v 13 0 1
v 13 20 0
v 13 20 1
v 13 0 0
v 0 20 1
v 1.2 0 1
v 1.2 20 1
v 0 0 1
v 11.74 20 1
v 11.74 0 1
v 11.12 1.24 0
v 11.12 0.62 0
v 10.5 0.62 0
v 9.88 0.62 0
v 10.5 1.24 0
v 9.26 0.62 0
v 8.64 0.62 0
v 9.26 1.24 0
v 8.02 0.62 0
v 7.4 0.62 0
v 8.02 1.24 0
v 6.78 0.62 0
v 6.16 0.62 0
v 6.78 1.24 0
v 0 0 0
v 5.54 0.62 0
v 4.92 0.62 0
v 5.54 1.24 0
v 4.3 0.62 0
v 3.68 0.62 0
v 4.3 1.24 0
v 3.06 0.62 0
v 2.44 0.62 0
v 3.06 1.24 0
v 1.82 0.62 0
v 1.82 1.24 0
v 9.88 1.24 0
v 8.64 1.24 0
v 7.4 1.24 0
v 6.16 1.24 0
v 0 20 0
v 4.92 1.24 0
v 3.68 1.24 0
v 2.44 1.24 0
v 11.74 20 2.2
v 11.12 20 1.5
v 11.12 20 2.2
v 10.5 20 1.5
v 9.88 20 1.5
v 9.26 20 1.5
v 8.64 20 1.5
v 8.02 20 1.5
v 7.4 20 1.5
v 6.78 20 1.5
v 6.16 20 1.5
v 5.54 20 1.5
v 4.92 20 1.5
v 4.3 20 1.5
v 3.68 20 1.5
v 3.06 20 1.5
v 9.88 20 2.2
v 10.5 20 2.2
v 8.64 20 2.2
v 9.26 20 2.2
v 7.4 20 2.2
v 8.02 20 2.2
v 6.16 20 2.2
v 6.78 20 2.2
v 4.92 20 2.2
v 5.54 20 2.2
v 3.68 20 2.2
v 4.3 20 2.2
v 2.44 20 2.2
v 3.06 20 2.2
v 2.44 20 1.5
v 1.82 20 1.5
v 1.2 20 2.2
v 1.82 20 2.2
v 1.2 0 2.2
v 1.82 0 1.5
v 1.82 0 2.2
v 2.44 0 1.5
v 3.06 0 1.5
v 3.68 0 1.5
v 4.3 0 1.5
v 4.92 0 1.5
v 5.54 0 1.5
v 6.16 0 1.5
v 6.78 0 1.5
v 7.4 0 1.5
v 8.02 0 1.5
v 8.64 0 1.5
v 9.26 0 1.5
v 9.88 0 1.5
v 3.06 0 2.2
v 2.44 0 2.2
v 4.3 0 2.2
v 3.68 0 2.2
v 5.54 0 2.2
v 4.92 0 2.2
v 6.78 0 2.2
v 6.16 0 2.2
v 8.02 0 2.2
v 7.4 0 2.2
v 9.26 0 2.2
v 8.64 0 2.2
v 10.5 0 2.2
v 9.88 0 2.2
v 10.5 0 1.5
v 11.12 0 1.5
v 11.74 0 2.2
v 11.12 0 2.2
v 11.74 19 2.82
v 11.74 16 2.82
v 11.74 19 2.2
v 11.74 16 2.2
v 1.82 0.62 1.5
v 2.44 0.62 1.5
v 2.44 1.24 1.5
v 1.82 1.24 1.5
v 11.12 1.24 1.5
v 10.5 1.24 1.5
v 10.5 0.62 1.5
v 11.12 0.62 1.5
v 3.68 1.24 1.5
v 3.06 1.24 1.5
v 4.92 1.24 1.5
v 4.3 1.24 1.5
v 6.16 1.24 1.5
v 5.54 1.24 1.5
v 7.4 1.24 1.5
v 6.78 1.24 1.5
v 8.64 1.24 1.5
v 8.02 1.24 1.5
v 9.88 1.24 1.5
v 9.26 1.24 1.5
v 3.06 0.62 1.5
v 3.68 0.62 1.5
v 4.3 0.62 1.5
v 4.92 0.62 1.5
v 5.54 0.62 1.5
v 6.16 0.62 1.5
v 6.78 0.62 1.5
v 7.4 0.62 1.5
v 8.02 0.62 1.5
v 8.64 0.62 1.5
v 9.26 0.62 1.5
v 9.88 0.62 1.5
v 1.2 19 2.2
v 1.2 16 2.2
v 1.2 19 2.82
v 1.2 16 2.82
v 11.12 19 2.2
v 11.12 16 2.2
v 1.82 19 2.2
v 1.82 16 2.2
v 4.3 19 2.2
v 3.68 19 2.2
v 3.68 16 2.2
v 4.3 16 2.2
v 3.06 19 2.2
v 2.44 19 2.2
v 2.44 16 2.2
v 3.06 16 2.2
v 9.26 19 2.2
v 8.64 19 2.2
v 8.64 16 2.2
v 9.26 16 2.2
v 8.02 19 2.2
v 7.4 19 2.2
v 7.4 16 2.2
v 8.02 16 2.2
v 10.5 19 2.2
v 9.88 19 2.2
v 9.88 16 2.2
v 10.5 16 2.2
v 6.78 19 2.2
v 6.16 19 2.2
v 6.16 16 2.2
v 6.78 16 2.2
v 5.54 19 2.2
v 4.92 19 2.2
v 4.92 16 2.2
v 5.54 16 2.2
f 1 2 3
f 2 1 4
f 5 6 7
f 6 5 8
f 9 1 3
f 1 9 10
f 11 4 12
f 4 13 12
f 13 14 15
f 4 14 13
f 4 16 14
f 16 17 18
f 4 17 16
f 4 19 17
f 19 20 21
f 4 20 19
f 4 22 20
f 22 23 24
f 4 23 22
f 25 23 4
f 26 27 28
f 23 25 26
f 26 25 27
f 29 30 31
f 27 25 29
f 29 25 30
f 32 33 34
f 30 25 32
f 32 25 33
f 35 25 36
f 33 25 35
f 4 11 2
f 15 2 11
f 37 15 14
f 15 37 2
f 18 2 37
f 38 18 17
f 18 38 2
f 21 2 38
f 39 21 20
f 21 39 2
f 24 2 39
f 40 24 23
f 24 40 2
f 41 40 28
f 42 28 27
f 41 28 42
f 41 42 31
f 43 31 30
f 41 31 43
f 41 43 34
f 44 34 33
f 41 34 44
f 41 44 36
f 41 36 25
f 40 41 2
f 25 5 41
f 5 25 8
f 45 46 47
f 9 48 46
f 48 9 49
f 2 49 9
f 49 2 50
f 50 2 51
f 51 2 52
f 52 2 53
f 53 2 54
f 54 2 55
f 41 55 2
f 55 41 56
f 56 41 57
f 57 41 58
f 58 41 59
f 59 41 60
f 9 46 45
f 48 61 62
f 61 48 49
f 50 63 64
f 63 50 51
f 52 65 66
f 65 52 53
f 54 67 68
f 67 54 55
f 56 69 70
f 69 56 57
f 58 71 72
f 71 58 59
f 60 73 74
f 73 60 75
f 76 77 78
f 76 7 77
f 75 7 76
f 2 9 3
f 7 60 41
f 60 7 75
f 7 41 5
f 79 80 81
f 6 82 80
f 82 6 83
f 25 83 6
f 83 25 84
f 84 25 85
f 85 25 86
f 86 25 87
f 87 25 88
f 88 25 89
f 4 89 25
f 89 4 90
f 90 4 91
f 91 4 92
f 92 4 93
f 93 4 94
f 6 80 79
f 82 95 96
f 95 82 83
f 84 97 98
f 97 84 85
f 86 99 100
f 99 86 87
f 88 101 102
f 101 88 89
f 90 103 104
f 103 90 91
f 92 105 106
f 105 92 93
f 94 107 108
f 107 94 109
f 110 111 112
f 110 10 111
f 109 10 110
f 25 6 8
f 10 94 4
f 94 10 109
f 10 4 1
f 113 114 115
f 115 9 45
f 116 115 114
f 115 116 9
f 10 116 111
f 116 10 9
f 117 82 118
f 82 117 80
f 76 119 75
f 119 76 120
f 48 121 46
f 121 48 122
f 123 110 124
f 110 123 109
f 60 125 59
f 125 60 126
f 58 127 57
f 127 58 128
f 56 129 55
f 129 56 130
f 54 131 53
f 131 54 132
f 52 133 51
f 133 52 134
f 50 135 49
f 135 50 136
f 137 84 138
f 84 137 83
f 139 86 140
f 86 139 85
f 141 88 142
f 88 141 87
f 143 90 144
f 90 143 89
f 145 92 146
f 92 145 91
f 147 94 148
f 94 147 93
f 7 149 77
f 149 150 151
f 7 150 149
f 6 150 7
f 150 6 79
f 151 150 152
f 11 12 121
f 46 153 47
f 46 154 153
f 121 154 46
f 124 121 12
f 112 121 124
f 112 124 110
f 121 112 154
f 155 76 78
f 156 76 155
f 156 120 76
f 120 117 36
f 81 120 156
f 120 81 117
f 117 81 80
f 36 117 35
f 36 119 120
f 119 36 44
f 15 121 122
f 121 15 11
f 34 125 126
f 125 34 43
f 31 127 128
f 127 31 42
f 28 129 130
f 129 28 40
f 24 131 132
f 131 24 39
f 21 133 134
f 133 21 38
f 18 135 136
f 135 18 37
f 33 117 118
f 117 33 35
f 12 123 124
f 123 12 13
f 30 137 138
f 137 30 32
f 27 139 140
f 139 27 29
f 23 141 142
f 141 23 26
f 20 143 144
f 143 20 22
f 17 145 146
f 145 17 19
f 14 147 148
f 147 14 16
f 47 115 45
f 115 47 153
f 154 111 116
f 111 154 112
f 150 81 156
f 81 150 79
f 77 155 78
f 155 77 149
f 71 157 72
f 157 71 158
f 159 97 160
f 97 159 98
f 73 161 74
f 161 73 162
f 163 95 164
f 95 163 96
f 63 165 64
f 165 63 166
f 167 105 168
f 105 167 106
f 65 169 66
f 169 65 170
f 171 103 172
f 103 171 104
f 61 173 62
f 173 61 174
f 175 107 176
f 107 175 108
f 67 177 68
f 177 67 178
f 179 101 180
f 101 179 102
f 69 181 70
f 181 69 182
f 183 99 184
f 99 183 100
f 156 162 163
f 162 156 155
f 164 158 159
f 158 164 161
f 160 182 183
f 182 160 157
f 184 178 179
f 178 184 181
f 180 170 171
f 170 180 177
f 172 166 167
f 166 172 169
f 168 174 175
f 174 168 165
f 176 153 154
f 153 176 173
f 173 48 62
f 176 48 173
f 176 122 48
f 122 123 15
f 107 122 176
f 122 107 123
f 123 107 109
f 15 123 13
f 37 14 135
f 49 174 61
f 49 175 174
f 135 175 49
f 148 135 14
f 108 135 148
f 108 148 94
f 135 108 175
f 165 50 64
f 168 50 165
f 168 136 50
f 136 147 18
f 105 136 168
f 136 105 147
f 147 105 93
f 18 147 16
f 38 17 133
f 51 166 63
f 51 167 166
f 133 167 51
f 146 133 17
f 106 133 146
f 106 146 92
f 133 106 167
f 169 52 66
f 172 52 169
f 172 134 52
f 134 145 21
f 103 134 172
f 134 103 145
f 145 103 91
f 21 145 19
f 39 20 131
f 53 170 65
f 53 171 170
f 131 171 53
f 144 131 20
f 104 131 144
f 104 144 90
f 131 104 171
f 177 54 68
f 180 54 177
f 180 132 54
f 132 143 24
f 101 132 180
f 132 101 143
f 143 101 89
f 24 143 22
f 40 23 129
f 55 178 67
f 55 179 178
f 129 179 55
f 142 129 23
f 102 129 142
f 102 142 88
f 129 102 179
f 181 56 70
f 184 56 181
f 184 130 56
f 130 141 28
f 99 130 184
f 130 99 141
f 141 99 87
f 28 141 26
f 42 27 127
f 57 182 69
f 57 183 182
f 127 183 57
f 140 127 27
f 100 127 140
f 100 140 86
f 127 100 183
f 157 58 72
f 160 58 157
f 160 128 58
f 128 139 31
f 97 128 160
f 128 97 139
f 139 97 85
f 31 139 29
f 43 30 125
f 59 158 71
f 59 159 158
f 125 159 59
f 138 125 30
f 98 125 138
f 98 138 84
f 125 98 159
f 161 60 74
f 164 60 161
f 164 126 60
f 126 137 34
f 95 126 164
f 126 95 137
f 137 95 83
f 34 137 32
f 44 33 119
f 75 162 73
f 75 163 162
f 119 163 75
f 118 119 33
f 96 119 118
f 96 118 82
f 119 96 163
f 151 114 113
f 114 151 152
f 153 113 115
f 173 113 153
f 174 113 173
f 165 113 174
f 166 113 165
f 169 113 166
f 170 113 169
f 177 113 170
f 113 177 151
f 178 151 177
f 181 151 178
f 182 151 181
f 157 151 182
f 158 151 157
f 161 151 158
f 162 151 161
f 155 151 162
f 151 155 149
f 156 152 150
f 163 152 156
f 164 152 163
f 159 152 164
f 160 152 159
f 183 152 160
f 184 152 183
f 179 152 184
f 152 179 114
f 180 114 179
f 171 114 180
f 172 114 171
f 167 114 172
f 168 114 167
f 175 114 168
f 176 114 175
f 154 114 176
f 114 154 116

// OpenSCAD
// PSX serial experimenters connector


// Width of contact channels:
width = 0.62;


difference() {
    union() {
        cube([13, 20, 1]);
        translate([1.2, 0, 1]) {
            cube([17*width, 20, 0.5]);  // originally 0.7
        }
    };
    translate([1.2 + width, width, -0.1]) {
    cube([15*width, width, 1.9]);
    }
}


module ridge() {
    cube([width, 20, 2.2]);
}


for ( i = [1 : 2 : 17]){
translate([1.2 + 17*width - i * width, 0, 0]) {
  ridge();
}
}


// Top bar
translate([1.2, 16, 2.2]) {
     cube([17*width, 3, width]);   
}
